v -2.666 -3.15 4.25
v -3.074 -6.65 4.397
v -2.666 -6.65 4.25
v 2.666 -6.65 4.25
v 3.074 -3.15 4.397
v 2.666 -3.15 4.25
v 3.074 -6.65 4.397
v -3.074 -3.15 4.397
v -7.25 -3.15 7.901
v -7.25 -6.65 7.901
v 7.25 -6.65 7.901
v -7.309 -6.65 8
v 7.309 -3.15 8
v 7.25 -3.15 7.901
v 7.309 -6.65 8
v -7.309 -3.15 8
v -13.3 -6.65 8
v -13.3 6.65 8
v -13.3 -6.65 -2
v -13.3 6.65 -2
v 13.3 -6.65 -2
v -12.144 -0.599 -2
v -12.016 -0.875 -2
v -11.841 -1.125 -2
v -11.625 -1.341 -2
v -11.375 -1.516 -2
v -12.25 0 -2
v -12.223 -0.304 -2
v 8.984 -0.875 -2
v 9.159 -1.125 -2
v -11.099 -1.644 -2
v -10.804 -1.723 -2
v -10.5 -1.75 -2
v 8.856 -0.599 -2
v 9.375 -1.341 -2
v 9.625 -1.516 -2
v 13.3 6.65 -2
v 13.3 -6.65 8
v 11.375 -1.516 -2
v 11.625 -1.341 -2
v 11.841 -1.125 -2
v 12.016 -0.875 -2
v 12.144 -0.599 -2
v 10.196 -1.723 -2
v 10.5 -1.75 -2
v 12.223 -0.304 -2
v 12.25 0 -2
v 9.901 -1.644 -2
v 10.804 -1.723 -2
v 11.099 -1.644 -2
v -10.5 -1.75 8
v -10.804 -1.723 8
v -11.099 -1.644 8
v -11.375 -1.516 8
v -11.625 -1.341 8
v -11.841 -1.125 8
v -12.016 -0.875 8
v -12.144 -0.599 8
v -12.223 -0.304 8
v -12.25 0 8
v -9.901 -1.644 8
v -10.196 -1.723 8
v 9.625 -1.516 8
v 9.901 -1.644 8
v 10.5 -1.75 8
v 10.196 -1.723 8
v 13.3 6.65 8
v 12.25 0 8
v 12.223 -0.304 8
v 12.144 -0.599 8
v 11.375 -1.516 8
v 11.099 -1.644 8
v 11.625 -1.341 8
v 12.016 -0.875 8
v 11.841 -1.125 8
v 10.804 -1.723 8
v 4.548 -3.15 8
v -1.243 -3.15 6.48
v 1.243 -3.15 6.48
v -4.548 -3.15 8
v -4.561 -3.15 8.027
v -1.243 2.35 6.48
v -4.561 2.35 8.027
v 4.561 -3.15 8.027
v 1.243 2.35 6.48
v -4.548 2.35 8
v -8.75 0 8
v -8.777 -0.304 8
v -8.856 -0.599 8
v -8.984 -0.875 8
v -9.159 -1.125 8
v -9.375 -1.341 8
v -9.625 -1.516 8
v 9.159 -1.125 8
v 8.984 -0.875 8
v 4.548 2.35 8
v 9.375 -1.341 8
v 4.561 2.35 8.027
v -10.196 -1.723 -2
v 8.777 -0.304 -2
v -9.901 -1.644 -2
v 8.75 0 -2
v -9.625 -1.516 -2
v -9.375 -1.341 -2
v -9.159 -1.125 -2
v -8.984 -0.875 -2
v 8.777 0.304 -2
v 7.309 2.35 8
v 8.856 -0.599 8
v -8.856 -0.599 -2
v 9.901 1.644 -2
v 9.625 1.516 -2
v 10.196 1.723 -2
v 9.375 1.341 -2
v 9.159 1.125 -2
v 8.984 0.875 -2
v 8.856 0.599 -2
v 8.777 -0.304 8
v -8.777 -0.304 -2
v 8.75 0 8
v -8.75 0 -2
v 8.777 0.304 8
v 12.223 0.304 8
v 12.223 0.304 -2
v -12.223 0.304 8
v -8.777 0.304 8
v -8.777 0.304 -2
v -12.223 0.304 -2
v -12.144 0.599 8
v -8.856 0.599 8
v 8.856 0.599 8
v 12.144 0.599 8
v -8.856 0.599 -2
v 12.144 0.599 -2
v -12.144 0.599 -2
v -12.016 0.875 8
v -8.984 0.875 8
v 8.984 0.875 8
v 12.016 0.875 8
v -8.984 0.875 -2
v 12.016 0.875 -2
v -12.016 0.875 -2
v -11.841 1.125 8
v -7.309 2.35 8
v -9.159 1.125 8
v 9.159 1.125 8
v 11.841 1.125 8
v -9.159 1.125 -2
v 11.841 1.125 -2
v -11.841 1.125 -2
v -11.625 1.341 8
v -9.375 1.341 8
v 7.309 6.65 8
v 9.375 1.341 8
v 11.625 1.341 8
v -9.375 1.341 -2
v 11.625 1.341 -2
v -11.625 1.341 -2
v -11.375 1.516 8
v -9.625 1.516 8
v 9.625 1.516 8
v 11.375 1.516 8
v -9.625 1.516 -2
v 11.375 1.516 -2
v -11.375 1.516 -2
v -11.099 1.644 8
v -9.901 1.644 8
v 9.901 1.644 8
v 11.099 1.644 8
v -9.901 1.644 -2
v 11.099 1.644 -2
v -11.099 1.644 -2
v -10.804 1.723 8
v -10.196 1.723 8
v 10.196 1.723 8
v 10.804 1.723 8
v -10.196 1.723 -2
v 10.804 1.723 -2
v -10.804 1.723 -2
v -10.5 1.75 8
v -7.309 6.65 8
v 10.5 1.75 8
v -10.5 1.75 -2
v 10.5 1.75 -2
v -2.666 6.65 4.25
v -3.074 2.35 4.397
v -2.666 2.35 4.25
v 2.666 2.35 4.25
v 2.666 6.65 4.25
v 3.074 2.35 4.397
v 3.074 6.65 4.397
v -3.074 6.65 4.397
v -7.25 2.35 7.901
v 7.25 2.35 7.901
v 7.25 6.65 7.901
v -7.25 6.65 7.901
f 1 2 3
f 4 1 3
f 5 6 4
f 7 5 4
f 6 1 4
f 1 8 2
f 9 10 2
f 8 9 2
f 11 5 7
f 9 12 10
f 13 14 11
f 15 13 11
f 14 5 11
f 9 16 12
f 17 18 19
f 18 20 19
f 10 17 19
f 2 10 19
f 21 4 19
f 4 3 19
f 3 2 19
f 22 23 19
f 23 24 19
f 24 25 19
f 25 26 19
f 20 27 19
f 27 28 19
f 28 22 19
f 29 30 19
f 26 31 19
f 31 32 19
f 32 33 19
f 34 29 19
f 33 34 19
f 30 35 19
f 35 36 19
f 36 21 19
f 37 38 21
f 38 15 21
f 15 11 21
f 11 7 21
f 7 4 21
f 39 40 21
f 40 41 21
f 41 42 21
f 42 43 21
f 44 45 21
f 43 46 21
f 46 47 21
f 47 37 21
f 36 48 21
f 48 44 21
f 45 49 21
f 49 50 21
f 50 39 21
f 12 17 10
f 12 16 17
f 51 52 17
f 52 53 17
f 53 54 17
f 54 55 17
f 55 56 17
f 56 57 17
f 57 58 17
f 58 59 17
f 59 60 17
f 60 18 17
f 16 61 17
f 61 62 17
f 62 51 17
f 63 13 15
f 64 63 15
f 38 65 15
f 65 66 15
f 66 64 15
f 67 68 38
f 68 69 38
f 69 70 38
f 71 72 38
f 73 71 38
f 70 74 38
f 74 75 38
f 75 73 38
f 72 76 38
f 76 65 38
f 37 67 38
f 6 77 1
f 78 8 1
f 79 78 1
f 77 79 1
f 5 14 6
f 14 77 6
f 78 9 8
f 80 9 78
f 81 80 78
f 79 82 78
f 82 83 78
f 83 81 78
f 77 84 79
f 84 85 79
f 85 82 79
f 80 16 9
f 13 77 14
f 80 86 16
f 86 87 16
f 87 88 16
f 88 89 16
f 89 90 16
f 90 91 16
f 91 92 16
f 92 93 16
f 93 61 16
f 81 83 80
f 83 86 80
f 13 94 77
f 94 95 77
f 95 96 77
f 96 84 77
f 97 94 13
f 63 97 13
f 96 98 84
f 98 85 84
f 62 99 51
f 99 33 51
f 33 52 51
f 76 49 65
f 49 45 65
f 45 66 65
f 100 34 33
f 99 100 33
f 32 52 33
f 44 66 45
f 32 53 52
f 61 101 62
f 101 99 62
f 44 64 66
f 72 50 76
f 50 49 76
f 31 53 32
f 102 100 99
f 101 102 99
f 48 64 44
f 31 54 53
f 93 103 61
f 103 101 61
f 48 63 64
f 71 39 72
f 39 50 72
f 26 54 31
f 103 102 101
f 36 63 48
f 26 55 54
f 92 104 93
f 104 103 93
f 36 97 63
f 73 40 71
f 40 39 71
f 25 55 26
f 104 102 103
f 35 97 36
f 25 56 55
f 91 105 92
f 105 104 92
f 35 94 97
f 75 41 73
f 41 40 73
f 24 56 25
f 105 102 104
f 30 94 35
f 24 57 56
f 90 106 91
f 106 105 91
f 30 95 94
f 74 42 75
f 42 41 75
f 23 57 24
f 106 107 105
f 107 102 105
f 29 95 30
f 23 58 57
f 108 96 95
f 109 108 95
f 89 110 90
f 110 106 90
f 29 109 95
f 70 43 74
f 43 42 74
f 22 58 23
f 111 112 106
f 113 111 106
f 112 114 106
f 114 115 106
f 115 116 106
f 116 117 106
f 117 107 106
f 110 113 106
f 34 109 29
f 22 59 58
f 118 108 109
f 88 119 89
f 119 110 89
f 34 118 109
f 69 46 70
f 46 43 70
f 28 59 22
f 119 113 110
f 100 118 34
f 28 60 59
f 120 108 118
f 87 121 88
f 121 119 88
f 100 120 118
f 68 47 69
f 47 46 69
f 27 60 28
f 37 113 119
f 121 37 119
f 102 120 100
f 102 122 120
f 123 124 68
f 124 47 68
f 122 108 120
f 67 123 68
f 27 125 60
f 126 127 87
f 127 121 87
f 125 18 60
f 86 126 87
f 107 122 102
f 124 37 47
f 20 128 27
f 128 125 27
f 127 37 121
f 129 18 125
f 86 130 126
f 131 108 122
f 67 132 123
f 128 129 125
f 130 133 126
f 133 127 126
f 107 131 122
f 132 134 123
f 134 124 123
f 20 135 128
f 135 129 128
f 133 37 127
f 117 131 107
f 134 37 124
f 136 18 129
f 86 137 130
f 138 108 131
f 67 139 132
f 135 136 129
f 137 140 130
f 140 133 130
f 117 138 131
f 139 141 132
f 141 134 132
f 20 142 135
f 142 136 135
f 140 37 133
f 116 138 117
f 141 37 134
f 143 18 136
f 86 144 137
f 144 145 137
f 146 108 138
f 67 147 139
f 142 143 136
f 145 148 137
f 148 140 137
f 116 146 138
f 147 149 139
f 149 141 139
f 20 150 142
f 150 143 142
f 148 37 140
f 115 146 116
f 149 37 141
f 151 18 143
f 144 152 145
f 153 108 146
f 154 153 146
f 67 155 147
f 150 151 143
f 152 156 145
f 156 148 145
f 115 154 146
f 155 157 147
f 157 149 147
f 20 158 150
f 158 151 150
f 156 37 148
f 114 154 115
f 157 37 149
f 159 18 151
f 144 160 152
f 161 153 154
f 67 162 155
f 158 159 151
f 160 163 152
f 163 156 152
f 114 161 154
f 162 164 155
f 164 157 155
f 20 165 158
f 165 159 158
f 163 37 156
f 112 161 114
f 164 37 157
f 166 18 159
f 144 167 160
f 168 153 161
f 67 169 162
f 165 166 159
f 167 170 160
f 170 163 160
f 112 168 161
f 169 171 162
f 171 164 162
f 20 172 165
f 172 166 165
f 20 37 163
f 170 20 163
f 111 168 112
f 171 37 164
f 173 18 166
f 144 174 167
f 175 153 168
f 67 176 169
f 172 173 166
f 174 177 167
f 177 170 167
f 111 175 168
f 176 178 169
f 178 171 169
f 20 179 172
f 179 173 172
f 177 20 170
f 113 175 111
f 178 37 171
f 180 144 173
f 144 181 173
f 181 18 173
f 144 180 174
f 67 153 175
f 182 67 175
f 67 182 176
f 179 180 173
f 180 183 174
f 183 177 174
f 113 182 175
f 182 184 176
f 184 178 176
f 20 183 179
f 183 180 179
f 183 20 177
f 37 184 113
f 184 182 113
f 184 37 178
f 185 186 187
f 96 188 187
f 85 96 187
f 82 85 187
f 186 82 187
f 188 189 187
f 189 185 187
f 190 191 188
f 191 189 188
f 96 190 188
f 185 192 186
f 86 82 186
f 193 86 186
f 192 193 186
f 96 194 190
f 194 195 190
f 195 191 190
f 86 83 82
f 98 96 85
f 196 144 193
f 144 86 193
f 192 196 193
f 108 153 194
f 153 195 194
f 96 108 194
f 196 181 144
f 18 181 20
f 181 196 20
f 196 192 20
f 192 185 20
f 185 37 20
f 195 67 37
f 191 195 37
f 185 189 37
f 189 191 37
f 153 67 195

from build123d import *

# Parameters (mm, degrees)
ESBO_O1_W                = 26.6
ESBO_O1_H                = 13.3
RESSALTO_EXTRUS_O1_DEPTH = 10
ESBO_O2_R                = 1.75
CORTE_EXTRUS_O1_DEPTH    = 18.919612776
ESBO_O3_R                = 8.48
CORTE_EXTRUS_O2_DEPTH    = 4.3
ESBO_O3_3_R              = 6.25
CORTE_EXTRUS_O3_DEPTH    = 9.8
CORTE_EXTRUS_O4_START    = -3.5
ESBO_O4_R                = 8.48
CORTE_EXTRUS_O4_DEPTH    = 3.5
RESSALTO_EXTRUS_O2_START = -13.3
RESSALTO_EXTRUS_O2_DEPTH = 13.3
RESSALTO_EXTRUS_O3_DEPTH = 5.5
ESBO_O7_W                = 1.347129382
ESBO_O7_H                = 0.427620669
RESSALTO_EXTRUS_O4_DEPTH = 5.5


with BuildPart() as part:
    # Esboço1 → Ressalto-extrusão1 (new body)
    with BuildSketch(Plane(origin=(7.1e-08, 2.4e-08, -1.999994237), x_dir=(-0.9999999999999994, 0, -3.5493490277080375e-08), z_dir=(3.5493490277080375e-08, 1.1940033902129589e-08, -0.9999999999999994))):
        Rectangle(ESBO_O1_W, ESBO_O1_H)
    extrude(amount=-RESSALTO_EXTRUS_O1_DEPTH)

    # Esboço2 → Corte-extrusão1 (cut, through all)
    with BuildSketch(Plane(origin=(7.1e-08, 2.4e-08, -1.999994237), x_dir=(-0.9999999999999994, 0, -3.549349026814977e-08), z_dir=(3.5493490268149776e-08, 1.1940033893980961e-08, -0.9999999999999994))):
        with Locations((-10.5, 0)):
            Circle(ESBO_O2_R)
        with Locations(Location((10.5, 0, 0), (0, 0, 180))):
            Circle(ESBO_O2_R)
    extrude(amount=-CORTE_EXTRUS_O1_DEPTH, mode=Mode.SUBTRACT)

    # Esboço3 → Corte-extrusão2 (cut)
    with BuildSketch(Plane(origin=(0, 6.65, 7.9e-08), x_dir=(1, 0, 0), z_dir=(0, 1.0, 1.1940033902129584e-08))):
        with Locations((0, -12.300005763)):
            Circle(ESBO_O3_R)
    extrude(amount=-CORTE_EXTRUS_O2_DEPTH, mode=Mode.SUBTRACT)

    # Esboço3<3> → Corte-extrusão3 (cut)
    with BuildSketch(Plane(origin=(0, 6.65, 7.9e-08), x_dir=(1, 0, 0), z_dir=(0, 1.0, 1.1940033902129584e-08))):
        with Locations((0, -12.300005763)):
            Circle(ESBO_O3_3_R)
    extrude(amount=-CORTE_EXTRUS_O3_DEPTH, mode=Mode.SUBTRACT)

    # Esboço4 → Corte-extrusão4 (cut)
    with BuildSketch(Plane(origin=(0, -6.65, -7.9e-08), x_dir=(1, 0, 0), z_dir=(0, -1.0, -1.1940033902129595e-08)).offset(CORTE_EXTRUS_O4_START)):
        with Locations((0, 12.300005763)):
            Circle(ESBO_O4_R)
    extrude(amount=CORTE_EXTRUS_O4_DEPTH, mode=Mode.SUBTRACT)

    # Esboço5 → Ressalto-extrusão2 (add)
    with BuildSketch(Plane(origin=(0, 6.65, 7.9e-08), x_dir=(1, 0, 0), z_dir=(0, 1.0, 1.1940033902129584e-08)).offset(RESSALTO_EXTRUS_O2_START)):
        Polygon((-7.249600207, -7.90072209), (-3.073568805, -4.39661568), (-6.960916747, -4.39661568), align=None)
        Polygon((7.249600207, -7.90072209), (3.073568805, -4.39661568), (6.960916747, -4.39661568), align=None)
        Polygon((-2.666064515, -4.250005763), (2.666064515, -4.250005763), (0, -3.025002882), align=None)
    extrude(amount=RESSALTO_EXTRUS_O2_DEPTH)

    # Esboço6 → Ressalto-extrusão3 (add)
    with BuildSketch(Plane(origin=(0, 2.35, 2.8e-08), x_dir=(1, 0, 0), z_dir=(0, 1.0, 1.1940033914348732e-08))):
        Polygon((-4.561360471, -8.027244285), (-1.243296754, -6.480005763), (1.243296754, -6.480005763), (4.561360471, -8.027244285), (3.582423284, -5.971627344), (0.394906827, -6.062494352), (-0.394906827, -6.062494352), (-3.582423284, -5.971627344), align=None)
    extrude(amount=-RESSALTO_EXTRUS_O3_DEPTH)

    # Esboço7 → Ressalto-extrusão4 (add)
    with BuildSketch(Plane(origin=(0, 2.35, 2.8e-08), x_dir=(1, 0, 0), z_dir=(0, 1.0, 1.1940033894814705e-08))):
        with Locations((0, -6.062494352)):
            Rectangle(ESBO_O7_W, ESBO_O7_H)
    extrude(amount=-RESSALTO_EXTRUS_O4_DEPTH)


solid = part.part
